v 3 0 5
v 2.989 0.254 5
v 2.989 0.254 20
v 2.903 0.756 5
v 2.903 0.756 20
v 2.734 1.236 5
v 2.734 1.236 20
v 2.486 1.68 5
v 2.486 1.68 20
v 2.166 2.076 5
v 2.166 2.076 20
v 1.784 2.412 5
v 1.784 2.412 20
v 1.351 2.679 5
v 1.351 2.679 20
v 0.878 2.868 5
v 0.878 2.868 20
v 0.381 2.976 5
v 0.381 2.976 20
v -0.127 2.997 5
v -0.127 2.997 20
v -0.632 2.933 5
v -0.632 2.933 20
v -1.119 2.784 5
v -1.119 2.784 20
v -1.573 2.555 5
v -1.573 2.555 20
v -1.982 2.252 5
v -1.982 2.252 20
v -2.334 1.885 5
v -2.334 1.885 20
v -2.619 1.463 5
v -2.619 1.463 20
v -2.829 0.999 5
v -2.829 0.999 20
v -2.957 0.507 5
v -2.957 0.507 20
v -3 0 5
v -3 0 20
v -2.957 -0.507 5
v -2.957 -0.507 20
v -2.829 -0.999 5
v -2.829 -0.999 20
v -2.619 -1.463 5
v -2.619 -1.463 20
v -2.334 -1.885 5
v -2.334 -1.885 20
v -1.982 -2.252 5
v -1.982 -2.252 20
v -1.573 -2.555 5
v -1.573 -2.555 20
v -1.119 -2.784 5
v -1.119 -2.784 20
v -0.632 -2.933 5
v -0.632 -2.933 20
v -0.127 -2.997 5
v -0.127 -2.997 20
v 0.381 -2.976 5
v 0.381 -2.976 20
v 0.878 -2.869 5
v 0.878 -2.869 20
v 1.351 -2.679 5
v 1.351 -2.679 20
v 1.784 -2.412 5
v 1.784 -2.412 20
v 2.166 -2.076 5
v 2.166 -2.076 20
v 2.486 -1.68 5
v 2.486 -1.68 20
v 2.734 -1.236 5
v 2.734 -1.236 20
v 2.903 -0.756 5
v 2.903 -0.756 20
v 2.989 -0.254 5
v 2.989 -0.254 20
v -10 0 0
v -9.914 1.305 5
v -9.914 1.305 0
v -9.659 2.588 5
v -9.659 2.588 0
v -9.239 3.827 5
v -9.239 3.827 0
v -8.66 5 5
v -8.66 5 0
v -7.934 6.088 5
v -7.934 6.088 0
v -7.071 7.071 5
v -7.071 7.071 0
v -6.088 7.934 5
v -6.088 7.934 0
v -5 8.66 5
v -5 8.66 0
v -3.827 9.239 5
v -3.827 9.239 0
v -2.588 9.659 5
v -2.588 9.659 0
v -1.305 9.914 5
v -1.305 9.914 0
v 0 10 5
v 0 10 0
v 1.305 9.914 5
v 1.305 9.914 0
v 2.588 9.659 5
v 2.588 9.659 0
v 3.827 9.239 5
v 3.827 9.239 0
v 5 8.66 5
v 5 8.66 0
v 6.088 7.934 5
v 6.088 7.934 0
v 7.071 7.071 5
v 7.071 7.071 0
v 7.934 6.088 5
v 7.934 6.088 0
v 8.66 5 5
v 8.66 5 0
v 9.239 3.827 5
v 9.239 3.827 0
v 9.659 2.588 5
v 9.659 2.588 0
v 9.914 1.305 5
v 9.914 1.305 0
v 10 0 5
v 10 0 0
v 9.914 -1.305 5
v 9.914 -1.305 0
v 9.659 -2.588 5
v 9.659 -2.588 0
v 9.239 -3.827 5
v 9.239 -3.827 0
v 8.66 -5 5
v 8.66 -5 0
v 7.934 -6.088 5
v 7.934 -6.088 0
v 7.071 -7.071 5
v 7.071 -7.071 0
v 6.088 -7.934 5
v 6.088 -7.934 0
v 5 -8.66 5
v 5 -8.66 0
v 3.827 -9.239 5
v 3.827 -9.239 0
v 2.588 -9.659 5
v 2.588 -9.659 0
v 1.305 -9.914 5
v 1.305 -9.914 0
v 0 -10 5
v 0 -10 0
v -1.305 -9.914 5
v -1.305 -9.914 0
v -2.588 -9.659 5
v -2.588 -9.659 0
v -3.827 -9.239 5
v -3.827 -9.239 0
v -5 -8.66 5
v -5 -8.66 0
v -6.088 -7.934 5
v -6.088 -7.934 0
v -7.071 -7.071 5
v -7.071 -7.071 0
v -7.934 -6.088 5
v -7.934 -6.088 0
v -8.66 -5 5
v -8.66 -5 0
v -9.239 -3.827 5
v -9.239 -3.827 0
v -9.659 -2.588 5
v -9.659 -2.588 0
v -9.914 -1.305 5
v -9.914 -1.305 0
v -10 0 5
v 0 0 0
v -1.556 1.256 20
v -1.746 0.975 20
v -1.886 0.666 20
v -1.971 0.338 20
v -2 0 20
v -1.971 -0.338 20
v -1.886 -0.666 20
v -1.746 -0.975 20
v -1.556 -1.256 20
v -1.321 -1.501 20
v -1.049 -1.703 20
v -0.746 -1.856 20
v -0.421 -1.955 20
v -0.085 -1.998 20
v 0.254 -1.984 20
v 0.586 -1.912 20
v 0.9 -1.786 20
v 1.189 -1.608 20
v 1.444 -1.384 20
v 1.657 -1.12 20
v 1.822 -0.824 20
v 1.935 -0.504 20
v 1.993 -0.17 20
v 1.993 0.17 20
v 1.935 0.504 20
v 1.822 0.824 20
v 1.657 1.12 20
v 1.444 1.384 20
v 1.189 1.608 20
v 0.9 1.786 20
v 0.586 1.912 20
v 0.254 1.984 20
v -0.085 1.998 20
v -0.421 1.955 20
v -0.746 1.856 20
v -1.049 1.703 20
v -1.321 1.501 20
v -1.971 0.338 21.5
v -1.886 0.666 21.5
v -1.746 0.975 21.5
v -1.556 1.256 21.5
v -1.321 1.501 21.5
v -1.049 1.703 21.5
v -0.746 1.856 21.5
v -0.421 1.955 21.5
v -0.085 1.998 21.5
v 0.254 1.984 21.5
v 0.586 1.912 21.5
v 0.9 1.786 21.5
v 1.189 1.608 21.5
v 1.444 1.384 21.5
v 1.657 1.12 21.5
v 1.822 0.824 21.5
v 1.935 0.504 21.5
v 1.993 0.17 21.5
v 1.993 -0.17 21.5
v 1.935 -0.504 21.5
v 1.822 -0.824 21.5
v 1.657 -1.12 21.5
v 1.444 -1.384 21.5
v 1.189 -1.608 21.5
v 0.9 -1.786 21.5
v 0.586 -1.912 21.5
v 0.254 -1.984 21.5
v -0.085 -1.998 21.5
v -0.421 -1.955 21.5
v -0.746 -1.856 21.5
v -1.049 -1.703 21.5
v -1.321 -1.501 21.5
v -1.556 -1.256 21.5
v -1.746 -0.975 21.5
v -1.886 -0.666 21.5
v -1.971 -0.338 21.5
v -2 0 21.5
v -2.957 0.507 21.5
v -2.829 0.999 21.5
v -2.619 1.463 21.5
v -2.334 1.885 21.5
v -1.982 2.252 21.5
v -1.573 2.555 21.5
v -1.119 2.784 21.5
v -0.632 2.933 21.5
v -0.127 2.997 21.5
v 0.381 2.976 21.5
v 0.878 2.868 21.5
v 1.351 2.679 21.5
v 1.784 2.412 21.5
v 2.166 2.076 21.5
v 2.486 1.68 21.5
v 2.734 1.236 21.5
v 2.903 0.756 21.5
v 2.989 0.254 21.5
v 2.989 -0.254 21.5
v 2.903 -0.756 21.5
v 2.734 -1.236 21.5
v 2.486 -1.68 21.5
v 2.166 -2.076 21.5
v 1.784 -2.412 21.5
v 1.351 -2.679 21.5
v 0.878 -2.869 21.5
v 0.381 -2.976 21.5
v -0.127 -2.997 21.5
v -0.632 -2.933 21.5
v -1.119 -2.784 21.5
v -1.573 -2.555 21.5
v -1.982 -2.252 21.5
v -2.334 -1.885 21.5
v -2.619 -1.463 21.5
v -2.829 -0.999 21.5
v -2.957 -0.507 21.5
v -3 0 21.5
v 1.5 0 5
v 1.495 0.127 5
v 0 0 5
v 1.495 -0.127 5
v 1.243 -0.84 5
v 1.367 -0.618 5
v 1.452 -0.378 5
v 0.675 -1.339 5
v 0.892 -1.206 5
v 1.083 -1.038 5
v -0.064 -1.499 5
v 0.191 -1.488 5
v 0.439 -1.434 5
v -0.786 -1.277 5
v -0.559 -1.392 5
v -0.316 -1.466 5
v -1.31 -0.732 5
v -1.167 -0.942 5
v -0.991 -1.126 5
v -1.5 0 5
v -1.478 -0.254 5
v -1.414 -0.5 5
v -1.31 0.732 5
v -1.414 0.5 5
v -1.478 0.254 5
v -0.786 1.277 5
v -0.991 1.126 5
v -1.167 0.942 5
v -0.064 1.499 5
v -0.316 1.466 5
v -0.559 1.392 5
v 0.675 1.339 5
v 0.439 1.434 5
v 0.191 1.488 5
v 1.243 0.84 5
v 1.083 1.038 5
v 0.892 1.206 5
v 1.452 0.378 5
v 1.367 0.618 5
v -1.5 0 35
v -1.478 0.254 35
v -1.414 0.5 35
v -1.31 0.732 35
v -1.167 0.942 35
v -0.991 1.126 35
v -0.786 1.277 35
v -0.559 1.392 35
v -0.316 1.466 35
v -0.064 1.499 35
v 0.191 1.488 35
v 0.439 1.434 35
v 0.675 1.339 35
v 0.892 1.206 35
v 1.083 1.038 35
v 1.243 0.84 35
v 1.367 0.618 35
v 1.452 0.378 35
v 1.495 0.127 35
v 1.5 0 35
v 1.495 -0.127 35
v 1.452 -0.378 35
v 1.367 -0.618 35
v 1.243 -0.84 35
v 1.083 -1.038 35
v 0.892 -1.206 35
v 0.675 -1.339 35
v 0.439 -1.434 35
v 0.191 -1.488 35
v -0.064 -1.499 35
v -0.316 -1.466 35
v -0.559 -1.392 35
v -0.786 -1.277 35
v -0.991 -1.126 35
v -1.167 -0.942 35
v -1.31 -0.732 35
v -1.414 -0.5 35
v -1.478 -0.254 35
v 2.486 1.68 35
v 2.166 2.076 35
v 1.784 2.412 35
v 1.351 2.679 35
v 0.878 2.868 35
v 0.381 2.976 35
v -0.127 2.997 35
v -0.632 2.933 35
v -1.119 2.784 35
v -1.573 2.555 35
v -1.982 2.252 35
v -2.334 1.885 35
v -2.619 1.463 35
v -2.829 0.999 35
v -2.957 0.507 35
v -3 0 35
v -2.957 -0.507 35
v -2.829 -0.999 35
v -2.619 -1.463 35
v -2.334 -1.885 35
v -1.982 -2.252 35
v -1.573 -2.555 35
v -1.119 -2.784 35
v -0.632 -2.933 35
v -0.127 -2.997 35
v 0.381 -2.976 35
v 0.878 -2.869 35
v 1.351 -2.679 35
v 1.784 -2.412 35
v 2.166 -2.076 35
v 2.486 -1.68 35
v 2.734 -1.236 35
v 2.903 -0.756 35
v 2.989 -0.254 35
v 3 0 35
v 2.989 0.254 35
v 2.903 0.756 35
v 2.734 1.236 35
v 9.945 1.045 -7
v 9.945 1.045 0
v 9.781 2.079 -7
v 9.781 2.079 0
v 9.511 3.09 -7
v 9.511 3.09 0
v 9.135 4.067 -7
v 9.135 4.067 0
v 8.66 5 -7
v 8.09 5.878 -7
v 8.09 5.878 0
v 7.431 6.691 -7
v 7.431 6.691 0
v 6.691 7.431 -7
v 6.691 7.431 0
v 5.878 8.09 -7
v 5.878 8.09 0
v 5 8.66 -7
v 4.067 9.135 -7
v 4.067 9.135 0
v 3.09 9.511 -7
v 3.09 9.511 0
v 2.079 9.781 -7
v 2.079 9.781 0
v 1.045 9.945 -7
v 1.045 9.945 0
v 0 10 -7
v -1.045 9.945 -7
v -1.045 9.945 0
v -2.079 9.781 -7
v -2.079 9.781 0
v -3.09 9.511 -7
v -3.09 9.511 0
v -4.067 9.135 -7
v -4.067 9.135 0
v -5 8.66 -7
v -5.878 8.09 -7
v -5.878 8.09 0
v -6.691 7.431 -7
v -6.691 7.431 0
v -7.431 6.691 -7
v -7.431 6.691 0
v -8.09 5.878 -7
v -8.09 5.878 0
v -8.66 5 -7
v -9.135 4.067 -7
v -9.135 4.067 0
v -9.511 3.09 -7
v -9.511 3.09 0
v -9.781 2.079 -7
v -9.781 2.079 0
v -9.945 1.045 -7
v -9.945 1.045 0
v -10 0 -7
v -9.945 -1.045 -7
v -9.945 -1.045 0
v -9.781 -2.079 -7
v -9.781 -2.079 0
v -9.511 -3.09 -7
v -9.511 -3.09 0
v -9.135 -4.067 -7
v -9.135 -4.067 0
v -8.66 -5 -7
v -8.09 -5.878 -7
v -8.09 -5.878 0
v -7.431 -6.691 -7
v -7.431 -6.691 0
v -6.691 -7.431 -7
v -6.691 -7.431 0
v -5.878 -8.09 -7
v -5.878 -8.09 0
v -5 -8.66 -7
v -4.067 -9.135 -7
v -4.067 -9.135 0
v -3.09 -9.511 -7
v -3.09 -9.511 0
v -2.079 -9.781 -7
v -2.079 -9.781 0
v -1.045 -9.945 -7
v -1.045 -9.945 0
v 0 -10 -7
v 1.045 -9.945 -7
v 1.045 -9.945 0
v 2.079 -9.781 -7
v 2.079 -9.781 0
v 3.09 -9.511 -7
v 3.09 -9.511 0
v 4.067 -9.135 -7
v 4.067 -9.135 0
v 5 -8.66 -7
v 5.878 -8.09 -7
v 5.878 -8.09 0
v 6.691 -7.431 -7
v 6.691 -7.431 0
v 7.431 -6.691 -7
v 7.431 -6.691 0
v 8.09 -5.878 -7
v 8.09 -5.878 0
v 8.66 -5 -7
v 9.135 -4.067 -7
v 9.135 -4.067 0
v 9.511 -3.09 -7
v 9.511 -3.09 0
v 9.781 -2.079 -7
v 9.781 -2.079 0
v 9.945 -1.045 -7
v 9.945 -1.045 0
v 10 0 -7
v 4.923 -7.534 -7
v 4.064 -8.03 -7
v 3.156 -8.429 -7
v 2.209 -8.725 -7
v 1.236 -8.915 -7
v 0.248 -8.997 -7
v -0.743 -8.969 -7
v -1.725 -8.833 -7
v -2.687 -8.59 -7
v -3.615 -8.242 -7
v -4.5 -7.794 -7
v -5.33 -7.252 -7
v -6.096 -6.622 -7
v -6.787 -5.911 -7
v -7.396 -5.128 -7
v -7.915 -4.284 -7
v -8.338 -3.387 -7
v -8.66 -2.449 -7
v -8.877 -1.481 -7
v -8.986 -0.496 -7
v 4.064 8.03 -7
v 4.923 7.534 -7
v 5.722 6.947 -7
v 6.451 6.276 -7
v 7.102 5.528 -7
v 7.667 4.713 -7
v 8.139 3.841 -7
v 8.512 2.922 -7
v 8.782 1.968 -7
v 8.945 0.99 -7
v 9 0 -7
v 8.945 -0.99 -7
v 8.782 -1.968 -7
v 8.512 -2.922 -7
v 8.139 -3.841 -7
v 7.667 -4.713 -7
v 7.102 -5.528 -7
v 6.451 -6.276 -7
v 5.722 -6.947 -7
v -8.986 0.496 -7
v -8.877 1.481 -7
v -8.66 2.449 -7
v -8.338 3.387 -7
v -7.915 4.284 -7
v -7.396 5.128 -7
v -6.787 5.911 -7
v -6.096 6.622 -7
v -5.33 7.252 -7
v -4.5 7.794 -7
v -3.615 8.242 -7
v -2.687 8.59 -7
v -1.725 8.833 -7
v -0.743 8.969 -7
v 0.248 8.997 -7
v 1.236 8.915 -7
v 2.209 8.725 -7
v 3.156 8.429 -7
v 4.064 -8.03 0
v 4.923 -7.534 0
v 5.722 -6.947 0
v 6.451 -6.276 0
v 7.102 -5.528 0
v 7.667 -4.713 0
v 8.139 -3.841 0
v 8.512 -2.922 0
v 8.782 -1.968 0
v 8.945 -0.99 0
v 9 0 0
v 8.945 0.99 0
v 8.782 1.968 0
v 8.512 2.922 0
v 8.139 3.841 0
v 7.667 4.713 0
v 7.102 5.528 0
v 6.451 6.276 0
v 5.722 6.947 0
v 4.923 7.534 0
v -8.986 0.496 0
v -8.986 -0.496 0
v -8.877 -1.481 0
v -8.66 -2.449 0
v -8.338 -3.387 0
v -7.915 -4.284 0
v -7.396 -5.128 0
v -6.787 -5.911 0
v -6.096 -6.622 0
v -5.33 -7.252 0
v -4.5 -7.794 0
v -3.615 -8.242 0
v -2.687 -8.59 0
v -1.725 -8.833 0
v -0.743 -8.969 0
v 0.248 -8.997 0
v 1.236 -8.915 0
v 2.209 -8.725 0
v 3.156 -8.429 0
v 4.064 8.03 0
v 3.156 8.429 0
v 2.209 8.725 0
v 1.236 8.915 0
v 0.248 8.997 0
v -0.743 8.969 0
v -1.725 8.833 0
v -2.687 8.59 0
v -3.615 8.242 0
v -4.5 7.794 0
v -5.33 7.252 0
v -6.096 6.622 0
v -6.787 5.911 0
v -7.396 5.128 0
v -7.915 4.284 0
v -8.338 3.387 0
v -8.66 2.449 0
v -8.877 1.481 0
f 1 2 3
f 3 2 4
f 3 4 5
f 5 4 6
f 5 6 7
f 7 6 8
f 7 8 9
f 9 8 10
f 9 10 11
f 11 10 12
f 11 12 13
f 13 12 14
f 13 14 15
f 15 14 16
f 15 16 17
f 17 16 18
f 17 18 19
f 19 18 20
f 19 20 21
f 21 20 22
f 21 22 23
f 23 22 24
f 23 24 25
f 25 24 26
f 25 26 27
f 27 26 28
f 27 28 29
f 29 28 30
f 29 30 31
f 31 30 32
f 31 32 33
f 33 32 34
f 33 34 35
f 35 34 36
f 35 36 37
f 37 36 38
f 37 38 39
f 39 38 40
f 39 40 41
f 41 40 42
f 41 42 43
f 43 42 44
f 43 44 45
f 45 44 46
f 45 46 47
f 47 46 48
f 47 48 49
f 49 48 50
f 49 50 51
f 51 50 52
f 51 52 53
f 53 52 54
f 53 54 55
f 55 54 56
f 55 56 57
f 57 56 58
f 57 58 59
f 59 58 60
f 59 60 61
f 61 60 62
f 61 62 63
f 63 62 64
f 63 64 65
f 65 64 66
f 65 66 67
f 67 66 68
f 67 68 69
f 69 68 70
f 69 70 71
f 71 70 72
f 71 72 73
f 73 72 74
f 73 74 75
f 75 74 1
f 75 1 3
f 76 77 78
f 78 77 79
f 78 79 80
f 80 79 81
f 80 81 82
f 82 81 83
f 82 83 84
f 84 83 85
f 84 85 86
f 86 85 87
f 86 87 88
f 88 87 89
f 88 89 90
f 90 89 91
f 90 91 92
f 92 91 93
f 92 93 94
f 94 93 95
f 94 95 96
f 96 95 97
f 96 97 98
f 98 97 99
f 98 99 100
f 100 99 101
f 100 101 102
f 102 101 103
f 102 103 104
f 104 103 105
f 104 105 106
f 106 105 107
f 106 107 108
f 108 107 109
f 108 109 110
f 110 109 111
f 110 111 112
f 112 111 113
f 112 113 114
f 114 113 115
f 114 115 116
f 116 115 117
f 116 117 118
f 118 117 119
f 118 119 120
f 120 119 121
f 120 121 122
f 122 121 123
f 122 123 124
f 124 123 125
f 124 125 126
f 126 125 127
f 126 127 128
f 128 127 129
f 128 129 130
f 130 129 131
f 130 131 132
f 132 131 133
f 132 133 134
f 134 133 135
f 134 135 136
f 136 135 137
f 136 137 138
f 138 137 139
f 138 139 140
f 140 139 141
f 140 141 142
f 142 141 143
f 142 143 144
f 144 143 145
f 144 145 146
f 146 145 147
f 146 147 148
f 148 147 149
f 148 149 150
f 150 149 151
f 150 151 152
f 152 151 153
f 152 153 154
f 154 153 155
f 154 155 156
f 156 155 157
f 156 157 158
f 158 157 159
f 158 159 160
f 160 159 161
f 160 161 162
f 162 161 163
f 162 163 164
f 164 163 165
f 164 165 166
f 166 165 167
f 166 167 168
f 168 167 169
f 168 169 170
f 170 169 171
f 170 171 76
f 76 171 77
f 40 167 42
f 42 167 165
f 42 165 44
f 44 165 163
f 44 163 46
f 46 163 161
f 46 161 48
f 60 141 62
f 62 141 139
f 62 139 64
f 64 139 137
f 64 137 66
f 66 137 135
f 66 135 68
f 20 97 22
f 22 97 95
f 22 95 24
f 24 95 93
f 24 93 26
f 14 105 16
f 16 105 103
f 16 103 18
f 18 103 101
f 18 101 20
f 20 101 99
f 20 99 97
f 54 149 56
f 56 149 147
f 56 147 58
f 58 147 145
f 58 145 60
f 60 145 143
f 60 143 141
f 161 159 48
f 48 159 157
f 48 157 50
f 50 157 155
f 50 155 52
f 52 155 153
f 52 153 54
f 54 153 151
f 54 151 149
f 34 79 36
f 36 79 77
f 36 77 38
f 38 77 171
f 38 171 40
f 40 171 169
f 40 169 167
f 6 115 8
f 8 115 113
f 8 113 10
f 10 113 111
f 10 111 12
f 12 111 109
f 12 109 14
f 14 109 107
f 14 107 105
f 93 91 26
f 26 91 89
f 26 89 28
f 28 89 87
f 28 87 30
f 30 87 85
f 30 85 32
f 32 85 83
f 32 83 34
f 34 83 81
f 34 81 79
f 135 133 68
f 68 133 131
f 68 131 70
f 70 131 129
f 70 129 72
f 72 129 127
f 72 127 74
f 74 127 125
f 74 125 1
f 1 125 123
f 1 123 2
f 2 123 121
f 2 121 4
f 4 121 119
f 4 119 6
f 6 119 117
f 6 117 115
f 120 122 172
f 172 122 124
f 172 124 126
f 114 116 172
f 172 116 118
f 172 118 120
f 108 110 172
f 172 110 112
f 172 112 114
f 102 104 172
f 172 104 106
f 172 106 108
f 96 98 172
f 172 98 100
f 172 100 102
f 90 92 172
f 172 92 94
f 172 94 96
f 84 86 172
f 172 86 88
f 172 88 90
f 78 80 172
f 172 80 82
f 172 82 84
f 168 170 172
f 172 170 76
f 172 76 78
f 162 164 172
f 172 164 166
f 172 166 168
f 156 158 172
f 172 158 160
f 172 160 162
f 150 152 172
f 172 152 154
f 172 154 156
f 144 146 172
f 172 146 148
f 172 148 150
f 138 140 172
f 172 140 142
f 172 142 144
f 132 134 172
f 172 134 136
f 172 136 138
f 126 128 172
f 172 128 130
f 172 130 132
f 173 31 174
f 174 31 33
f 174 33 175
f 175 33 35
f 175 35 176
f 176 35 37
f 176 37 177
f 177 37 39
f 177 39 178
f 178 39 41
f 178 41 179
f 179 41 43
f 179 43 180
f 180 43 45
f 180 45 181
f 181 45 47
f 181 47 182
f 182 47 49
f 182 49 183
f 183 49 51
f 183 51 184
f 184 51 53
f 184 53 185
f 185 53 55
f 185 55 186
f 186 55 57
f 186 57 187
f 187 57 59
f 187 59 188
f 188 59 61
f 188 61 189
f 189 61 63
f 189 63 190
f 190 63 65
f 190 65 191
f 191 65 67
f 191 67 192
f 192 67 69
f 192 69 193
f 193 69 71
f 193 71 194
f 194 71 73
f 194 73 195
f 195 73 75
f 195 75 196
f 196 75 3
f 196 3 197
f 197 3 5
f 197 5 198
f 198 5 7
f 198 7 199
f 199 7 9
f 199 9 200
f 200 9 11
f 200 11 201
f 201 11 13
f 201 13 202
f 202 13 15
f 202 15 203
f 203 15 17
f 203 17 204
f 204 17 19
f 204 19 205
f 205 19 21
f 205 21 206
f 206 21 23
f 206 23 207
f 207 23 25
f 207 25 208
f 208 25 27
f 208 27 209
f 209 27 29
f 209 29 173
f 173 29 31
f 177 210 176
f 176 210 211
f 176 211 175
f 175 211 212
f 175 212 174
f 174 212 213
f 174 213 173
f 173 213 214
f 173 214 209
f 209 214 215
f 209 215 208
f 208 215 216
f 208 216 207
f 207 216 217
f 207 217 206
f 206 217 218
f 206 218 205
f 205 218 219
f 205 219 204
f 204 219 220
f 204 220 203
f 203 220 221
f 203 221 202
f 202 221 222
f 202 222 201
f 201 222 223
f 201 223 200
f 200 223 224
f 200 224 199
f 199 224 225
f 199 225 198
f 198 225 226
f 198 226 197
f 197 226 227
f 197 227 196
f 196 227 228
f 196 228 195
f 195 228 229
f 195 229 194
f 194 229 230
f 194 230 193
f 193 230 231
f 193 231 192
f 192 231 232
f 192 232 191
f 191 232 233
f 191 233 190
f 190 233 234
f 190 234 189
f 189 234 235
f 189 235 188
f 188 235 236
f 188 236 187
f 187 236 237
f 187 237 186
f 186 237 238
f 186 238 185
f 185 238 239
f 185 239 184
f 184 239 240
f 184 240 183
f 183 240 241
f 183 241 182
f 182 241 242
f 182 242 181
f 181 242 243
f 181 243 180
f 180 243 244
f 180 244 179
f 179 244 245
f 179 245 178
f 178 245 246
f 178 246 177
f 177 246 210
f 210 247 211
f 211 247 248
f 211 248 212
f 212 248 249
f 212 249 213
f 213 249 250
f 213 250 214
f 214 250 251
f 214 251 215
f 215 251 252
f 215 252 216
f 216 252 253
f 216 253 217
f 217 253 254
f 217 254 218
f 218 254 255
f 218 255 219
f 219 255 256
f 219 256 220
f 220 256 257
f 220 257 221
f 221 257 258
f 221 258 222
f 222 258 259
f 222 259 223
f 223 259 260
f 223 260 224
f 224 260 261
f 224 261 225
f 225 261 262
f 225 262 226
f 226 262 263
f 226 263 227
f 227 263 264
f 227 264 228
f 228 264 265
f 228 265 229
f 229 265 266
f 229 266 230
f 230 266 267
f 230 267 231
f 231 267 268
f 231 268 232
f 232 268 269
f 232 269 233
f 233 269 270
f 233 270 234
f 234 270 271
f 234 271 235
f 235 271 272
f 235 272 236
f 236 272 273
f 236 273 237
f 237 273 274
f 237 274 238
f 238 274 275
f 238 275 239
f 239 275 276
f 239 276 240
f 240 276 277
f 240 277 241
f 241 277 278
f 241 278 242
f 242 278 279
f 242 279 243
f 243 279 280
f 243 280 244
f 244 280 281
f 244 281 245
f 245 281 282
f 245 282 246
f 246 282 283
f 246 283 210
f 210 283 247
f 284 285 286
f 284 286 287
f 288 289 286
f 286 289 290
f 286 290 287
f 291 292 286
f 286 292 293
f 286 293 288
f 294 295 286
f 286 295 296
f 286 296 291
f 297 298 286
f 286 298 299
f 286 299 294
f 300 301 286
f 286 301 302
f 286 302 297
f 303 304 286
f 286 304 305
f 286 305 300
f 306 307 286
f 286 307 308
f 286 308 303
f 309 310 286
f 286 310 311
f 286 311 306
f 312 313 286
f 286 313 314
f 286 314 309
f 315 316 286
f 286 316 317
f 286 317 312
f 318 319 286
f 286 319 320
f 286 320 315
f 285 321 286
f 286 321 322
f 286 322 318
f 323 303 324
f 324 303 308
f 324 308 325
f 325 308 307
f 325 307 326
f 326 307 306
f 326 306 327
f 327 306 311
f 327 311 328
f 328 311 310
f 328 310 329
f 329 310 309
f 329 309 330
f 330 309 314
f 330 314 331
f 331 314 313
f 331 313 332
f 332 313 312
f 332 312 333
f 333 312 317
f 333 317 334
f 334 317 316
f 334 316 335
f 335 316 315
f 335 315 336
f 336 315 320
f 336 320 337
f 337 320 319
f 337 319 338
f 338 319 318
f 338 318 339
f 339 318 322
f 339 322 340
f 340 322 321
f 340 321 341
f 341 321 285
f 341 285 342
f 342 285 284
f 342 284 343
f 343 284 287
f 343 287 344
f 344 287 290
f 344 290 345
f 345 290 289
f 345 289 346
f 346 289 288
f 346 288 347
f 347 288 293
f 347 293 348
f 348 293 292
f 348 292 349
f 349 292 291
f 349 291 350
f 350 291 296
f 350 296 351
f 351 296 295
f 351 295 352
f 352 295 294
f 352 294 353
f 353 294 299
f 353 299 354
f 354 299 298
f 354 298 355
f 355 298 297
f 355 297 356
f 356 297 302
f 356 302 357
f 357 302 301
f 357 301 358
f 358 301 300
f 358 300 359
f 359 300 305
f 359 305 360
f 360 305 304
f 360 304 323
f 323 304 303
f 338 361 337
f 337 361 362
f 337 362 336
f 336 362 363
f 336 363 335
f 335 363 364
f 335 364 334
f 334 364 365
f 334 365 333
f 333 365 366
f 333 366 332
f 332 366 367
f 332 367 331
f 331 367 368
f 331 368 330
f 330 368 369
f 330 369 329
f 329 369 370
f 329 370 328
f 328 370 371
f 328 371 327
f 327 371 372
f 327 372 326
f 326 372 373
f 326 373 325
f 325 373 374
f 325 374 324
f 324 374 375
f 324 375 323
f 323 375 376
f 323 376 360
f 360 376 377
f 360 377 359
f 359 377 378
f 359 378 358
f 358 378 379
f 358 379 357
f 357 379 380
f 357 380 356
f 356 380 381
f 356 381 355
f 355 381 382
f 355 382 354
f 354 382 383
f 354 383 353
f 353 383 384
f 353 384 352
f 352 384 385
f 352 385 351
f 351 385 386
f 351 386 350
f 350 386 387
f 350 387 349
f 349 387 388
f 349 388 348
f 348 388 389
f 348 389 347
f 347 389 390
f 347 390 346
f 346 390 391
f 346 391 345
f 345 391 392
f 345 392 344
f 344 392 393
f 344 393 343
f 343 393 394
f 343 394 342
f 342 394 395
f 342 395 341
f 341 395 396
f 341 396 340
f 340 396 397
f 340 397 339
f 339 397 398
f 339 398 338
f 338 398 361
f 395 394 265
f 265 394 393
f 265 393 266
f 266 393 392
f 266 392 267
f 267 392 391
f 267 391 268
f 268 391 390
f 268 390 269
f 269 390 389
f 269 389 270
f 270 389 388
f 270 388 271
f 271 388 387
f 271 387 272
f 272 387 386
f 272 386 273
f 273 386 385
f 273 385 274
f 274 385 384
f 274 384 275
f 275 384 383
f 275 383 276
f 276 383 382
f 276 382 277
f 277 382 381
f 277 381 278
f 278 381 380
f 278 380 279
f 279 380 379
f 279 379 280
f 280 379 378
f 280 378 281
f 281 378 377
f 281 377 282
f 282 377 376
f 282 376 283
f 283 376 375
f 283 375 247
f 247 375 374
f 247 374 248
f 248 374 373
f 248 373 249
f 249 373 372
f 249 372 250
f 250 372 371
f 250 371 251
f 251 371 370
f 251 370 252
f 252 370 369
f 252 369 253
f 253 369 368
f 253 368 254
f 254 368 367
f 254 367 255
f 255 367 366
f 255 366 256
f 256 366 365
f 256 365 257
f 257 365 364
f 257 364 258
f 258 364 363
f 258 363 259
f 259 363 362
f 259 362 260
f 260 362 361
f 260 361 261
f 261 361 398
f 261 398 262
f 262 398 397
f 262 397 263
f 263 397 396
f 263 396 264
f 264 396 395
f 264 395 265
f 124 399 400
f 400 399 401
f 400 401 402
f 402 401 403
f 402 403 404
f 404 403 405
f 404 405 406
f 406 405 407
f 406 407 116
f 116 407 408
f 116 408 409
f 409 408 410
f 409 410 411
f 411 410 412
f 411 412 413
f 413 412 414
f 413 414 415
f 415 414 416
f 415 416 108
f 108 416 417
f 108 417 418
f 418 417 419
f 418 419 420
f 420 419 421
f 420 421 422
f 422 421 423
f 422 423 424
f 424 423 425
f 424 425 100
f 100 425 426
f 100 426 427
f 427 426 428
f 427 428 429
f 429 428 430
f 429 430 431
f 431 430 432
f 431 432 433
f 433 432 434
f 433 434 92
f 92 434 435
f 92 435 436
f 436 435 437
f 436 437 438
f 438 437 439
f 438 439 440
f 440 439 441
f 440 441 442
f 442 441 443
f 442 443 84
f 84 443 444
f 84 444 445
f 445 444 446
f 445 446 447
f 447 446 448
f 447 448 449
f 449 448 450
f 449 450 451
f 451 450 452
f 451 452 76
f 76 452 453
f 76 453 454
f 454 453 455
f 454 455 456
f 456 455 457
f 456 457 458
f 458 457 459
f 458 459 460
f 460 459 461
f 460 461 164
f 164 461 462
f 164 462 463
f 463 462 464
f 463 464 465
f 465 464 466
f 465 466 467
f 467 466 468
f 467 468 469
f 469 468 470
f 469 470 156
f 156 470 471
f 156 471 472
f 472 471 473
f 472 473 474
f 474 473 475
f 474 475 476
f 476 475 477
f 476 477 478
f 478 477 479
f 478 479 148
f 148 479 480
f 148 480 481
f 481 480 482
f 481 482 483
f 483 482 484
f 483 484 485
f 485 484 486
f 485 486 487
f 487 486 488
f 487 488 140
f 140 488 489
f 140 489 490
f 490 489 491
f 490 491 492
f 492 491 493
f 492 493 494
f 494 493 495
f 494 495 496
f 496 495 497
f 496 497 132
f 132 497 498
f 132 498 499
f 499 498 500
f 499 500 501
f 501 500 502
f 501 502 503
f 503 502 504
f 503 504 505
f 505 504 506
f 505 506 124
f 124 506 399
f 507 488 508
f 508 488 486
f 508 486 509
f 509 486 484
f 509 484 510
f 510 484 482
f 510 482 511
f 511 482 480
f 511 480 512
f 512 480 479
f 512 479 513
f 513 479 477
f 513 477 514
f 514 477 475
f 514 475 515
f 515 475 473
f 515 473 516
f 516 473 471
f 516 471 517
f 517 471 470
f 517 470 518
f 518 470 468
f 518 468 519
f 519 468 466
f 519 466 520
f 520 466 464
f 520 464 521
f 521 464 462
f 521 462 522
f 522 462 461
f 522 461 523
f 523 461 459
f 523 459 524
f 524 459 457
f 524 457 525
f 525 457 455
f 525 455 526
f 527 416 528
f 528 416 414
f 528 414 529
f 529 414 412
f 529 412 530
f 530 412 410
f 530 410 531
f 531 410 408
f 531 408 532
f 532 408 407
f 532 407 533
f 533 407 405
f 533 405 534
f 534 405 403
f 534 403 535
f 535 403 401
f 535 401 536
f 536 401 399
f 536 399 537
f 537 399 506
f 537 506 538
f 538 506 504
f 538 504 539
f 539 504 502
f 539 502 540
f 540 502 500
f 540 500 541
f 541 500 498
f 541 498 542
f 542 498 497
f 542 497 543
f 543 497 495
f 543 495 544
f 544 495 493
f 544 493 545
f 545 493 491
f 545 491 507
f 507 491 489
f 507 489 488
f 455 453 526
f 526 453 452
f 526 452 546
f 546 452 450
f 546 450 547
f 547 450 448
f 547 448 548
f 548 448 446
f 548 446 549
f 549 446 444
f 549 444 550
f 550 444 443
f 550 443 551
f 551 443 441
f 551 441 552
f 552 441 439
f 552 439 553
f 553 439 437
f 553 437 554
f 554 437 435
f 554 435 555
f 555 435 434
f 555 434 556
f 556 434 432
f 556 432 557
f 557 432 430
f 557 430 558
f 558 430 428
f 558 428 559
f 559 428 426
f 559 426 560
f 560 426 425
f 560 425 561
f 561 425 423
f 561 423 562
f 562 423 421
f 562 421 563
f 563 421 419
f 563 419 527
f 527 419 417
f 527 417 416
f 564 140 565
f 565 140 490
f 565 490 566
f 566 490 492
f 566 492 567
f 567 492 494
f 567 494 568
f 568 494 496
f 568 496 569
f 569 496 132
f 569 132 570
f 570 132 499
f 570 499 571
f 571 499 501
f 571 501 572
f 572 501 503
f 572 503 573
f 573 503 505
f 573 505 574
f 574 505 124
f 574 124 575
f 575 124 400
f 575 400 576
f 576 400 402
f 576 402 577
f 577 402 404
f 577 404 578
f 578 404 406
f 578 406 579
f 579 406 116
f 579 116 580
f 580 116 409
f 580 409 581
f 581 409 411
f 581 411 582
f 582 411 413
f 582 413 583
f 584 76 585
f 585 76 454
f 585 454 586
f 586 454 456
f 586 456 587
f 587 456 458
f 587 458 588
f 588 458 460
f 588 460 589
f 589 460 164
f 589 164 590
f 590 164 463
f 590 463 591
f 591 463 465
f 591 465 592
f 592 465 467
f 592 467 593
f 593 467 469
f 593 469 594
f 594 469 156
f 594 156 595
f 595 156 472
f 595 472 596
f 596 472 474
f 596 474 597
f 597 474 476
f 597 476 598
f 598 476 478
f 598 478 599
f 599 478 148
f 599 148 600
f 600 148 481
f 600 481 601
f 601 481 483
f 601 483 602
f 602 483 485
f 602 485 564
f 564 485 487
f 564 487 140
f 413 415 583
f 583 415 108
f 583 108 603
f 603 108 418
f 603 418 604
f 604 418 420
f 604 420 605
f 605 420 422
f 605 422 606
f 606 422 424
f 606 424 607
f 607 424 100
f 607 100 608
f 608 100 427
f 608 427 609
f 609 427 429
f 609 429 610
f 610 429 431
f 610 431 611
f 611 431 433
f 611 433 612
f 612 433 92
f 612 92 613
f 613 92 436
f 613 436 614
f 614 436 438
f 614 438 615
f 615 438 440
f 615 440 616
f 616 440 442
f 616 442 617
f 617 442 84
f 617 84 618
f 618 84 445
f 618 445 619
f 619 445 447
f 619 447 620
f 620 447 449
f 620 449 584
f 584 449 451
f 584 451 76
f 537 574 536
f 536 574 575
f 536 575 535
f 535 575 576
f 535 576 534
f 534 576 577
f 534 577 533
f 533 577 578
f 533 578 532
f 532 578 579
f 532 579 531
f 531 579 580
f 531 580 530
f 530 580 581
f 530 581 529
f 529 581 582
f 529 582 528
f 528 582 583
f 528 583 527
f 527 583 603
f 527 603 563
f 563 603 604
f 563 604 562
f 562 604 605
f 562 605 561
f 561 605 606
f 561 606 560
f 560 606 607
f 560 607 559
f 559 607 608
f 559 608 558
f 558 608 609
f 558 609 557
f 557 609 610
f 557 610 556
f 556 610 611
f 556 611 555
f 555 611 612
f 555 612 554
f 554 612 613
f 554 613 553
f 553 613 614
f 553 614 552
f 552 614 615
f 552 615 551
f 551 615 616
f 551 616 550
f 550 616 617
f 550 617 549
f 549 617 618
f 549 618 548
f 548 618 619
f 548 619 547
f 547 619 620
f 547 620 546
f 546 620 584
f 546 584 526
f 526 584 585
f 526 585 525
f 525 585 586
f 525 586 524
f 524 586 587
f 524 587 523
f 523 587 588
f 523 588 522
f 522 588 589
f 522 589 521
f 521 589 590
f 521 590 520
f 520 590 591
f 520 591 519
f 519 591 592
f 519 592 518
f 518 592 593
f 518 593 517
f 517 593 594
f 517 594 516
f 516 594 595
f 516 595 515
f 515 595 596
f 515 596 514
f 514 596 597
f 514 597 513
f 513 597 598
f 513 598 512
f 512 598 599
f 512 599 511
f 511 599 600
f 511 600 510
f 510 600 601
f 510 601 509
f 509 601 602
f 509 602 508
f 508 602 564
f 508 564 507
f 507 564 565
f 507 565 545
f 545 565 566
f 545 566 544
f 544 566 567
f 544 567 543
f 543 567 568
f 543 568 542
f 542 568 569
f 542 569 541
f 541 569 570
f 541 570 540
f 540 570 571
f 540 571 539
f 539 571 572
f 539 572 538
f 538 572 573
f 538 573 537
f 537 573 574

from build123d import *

# Parameters (mm, degrees)
CROQUIS1_R              = 10
SALIENTE_EXTRUIR1_DEPTH = 5
CROQUIS1_6_R            = 3
CROQUIS1_6_R_2          = 1.5
EXTRUIR_L_MINA1_DEPTH   = 35
CROQUIS2_W              = 1
CROQUIS2_H              = 1.5
CROQUIS1_7_R            = 10
CROQUIS1_7_R_2          = 9
EXTRUIR_L_MINA2_DEPTH   = 7


with BuildPart() as part:
    # Croquis1 → Saliente-Extruir1 (new body)
    with BuildSketch(Plane.XY):
        Circle(CROQUIS1_R)
    extrude(amount=SALIENTE_EXTRUIR1_DEPTH)

    # Croquis1_6 → Extruir-L_mina1 (add)
    with BuildSketch(Plane.XY):
        Circle(CROQUIS1_6_R)
        Circle(CROQUIS1_6_R_2, mode=Mode.SUBTRACT)
    extrude(amount=EXTRUIR_L_MINA1_DEPTH)

    # Croquis2 → Cortar-Revoluci_n2 (revolve, cut)
    with BuildSketch(Plane(origin=(0, 0, 0), x_dir=(1, 0, 0), z_dir=(0, 1, 0))):
        with Locations((-2.5, -20.75)):
            Rectangle(CROQUIS2_W, CROQUIS2_H)
    revolve(axis=Axis((0, 0, 0), (0, 0, 1)), mode=Mode.SUBTRACT)


with BuildPart() as body_2:
    # Croquis1_7 → Extruir-L_mina2 (new body)
    with BuildSketch(Plane.XY):
        Circle(CROQUIS1_7_R)
        Circle(CROQUIS1_7_R_2, mode=Mode.SUBTRACT)
    extrude(amount=-EXTRUIR_L_MINA2_DEPTH)


solid = Compound([part.part, body_2.part])
